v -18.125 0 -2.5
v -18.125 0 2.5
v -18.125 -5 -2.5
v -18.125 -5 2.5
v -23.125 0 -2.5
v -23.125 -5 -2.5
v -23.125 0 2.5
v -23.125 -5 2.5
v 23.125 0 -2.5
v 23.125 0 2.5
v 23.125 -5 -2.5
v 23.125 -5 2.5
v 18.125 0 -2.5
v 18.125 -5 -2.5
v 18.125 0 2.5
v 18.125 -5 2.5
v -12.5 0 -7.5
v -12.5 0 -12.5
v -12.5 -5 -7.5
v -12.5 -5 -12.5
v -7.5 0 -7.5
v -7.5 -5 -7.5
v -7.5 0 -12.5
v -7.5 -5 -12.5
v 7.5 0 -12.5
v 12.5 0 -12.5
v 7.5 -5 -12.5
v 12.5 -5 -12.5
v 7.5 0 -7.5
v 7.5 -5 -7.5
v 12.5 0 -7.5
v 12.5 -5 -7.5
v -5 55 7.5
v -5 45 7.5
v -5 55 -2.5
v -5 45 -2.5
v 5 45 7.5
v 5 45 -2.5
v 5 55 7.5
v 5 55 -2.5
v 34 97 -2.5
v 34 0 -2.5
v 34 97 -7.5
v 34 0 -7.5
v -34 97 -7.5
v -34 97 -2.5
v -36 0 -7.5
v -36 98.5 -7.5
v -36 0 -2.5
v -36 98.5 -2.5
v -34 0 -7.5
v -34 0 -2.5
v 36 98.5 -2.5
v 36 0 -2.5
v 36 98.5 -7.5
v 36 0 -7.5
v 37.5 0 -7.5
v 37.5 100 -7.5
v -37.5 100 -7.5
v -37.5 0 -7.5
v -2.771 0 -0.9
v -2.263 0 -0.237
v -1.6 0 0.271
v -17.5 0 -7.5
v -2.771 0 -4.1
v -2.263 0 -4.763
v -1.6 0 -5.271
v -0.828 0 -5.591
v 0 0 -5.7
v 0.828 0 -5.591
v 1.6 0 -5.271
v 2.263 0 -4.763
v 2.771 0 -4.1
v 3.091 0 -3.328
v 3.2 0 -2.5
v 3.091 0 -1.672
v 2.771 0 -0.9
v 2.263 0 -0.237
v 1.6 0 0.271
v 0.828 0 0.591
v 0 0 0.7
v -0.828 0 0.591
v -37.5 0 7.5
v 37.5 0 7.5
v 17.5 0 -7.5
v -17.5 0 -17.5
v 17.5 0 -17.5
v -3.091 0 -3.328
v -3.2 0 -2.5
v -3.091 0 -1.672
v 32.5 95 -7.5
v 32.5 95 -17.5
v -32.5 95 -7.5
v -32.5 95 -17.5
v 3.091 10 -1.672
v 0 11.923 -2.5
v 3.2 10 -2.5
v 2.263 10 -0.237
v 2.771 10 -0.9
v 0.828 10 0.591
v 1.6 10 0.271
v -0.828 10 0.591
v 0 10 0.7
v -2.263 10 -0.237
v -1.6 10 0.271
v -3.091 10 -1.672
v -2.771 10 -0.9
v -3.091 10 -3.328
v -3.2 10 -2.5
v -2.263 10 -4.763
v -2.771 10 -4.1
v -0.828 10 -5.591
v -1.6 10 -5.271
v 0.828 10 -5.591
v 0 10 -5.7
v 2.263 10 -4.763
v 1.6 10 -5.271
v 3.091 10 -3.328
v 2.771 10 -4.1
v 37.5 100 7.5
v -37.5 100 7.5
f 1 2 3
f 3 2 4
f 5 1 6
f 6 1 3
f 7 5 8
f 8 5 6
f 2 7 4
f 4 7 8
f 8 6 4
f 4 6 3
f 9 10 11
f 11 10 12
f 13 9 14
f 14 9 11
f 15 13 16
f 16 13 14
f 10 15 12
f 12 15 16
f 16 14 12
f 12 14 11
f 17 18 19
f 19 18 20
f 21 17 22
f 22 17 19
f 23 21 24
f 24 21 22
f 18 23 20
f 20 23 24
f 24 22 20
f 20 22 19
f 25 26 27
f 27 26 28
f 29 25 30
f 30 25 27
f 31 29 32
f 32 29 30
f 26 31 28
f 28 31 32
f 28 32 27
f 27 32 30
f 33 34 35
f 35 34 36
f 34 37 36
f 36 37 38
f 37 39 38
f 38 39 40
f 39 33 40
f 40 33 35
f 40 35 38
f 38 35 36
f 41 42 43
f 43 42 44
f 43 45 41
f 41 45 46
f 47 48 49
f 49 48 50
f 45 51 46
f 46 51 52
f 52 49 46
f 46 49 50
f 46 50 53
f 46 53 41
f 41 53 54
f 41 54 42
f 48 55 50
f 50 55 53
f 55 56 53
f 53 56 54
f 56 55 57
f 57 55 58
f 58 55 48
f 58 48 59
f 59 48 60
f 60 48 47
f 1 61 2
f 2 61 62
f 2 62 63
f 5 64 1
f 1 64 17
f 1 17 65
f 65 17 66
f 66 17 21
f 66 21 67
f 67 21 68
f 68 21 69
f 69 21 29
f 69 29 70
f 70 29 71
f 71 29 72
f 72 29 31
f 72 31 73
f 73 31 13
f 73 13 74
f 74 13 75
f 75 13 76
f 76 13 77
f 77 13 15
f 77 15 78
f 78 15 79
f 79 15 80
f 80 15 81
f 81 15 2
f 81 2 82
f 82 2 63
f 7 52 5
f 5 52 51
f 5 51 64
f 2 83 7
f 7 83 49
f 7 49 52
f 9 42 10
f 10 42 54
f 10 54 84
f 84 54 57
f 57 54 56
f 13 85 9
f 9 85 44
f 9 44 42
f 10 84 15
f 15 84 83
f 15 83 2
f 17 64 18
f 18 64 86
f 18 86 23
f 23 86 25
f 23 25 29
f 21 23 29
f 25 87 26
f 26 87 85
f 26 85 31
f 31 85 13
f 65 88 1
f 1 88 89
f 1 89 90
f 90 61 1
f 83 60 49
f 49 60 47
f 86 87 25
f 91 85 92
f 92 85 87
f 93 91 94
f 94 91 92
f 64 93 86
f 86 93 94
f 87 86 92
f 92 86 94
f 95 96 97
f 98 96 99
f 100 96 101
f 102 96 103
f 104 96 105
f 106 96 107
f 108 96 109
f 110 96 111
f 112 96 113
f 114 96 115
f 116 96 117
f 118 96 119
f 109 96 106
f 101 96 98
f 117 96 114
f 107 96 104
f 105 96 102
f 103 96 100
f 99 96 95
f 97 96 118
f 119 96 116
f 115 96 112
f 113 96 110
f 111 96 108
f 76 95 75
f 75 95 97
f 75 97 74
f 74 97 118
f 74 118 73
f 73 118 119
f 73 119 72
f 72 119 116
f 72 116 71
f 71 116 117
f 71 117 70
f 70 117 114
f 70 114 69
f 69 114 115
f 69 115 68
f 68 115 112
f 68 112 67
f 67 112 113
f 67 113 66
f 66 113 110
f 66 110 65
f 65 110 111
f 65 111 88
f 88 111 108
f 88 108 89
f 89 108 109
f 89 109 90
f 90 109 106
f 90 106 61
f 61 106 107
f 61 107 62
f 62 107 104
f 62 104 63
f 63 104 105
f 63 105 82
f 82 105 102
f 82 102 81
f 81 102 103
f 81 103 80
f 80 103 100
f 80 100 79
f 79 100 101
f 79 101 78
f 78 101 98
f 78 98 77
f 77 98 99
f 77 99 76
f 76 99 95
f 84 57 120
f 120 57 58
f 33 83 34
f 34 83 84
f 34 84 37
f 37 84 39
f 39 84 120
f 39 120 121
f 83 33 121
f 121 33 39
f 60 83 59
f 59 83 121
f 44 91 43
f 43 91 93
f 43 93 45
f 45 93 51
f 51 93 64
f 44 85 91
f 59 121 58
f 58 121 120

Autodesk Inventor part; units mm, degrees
ref_plane "YZ Plane" through (0, 0, 0) normal (1, 0, 0) x (0, 1, 0)
ref_plane "XZ Plane" through (0, 0, 0) normal (0, 1, 0) x (-1, 0, 0)
ref_plane "XY Plane" through (0, 0, 0) normal (0, 0, 1) x (1, 0, 0)
sketch "Sketch5" plane through (0, 0, 0) normal (0, 1, 0) x (-1, 0, 0)
  line L0 (-37.5, -7.5) -> (37.5, -7.5)
  line L1 (37.5, -7.5) -> (37.5, 7.5)
  line L2 (37.5, 7.5) -> (-37.5, 7.5)
  line L3 (-37.5, 7.5) -> (-37.5, -7.5)
  line L4 (-37.5, -7.5) -> (37.5, 7.5) construction
  line L5 (37.5, -7.5) -> (-37.5, 7.5) construction
  point P0 (0, 0)
  dimension "d6" = 75
  dimension "d7" = 15
extrude "Extrusion2" add sketch "Sketch5" along normal blind 100
sketch "Sketch36" plane through (0, 0, 0) normal (0, -1, 0) x (1, 0, 0)
  line L0 (-37.5, 7.5) -> (37.5, 7.5) projected
  line L1 (0, 7.5) -> (0, -2.5)
  point P0 (0, 0)
  dimension "d82" = 10
hole "Hole1" at (0, 0, -2.5) direction (0, 1, 0) diameter 6.4 depth 10 tip angle 118
sketch "Sketch37" plane through (37.5, 0, -7.5) normal (0, 0, -1) x (-1, 0, 0)
  line L0 (37.5, 0) -> (55, 0)
  line L1 (75, 0) -> (0, 0) projected
  line L2 (70, 0) -> (70, 95)
  line L3 (0, 100) -> (75, 100) projected
  line L4 (70, 0) -> (165, 0) construction
  line L5 (70, 95) -> (5, 95)
  line L6 (0, 0) -> (0, 100) projected
  line L7 (5, 95) -> (5, 0)
  line L8 (5, 0) -> (0, 0)
  line L9 (0, 100) -> (75, 100)
  line L10 (75, 100) -> (75, 0)
  line L11 (55, 0) -> (70, 95)
  line L12 (5, 95) -> (70, 95)
  line L13 (37.5, 0) -> (20, 0)
  line L14 (20, 0) -> (5, 95)
  dimension "d90" = 17.5
  dimension "d91" = 95
  dimension "d92" = 90
  dimension "d93" = 65
  dimension "d94" = 17.5
extrude "Extrusion11" add sketch "Sketch37" along normal blind 10 contours L1 L14 L5 L11 L0
sketch "Sketch38" plane through (37.5, 100, -7.5) normal (0, 0, -1) x (-1, 0, 0)
  line L0 (75, -100) -> (0, -100) projected
  line L1 (1.5, -100) -> (3.5, -100)
  line L2 (3.5, -100) -> (3.5, -1.5)
  line L3 (3.5, -1.5) -> (1.5, -1.5)
  line L4 (1.5, -1.5) -> (1.5, -100)
  line L5 (1.5, -1.5) -> (73.5, -1.5)
  line L6 (73.5, -1.5) -> (73.5, -3)
  line L7 (73.5, -3) -> (1.5, -3)
  line L8 (1.5, -3) -> (1.5, -1.5)
  line L9 (55, -100) -> (75, -100) projected
  line L10 (73.5, -1.5) -> (71.5, -1.5)
  line L11 (71.5, -1.5) -> (71.5, -100)
  line L12 (71.5, -100) -> (73.5, -100)
  line L13 (73.5, -100) -> (73.5, -1.5)
  point P0 (37.5, -100)
  dimension "d97" = 2
  dimension "d98" = 98.5
  dimension "d99" = 72
  dimension "d100" = 2
extrude "Extrusion12" cut sketch "Sketch38" against normal blind 5 contours L0 L11 L7 L13 | L7 L11 L5 L6 | L7 L2 L5 L11 | L0 L4 L7 L2 | L7 L4 L3 L2
sketch "Sketch39" plane through (-37.5, 0, 7.5) normal (0, 0, 1) x (1, 0, 0)
  line L0 (42.5, 55) -> (32.5, 55)
  line L1 (32.5, 55) -> (32.5, 45)
  line L2 (32.5, 45) -> (42.5, 45)
  line L3 (42.5, 45) -> (42.5, 55)
  line L4 (42.5, 55) -> (32.5, 45) construction
  line L5 (32.5, 55) -> (42.5, 45) construction
  point P0 (37.5, 0)
  point P1 (37.5, 50)
  dimension "d103" = 10
  dimension "d104" = 10
extrude "Extrusion13" cut sketch "Sketch39" against normal blind 10
sketch "Sketch43" plane through (0, 0, 0) normal (0, -1, 0) x (1, 0, 0)
  line L0 (17.5, -7.5) -> (17.5, -17.5) projected
  line L1 (17.5, -17.5) -> (12.5, -17.5)
  line L2 (12.5, -17.5) -> (12.5, -12.5)
  line L3 (12.5, -12.5) -> (17.5, -12.5)
  line L4 (17.5, -12.5) -> (17.5, -17.5)
  line L5 (12.5, -12.5) -> (7.5, -12.5)
  line L6 (7.5, -12.5) -> (7.5, -7.5)
  line L7 (7.5, -7.5) -> (12.5, -7.5)
  line L8 (12.5, -7.5) -> (12.5, -12.5)
  point P0 (0, 0)
  dimension "d122" = 5
  dimension "d123" = 5
  dimension "d124" = 5
  dimension "d125" = 5
extrude "Extrusion16" add sketch "Sketch43" along normal blind 5 contours L5 L6 L7 L8
sketch "Sketch45" plane through (0, 0, 0) normal (0, -1, 0) x (1, 0, 0)
  line L0 (-17.5, -7.5) -> (-17.5, -17.5) projected
  line L1 (-17.5, -17.5) -> (-12.5, -17.5)
  line L2 (-12.5, -17.5) -> (-12.5, -12.5)
  line L3 (-12.5, -12.5) -> (-17.5, -12.5)
  line L4 (-17.5, -12.5) -> (-17.5, -17.5)
  line L5 (-12.5, -12.5) -> (-7.5, -12.5)
  line L6 (-7.5, -12.5) -> (-7.5, -7.5)
  line L7 (-7.5, -7.5) -> (-12.5, -7.5)
  line L8 (-12.5, -7.5) -> (-12.5, -12.5)
  point P0 (0, 0)
  dimension "d128" = 5
  dimension "d129" = 5
  dimension "d130" = 5
  dimension "d131" = 5
extrude "Extrusion17" add sketch "Sketch45" along normal blind 5 contours L8 L7 L6 L5
sketch "Sketch48" plane through (0, 0, 0) normal (0, -1, 0) x (1, 0, 0)
  line L0 (-27.5, 7.5) -> (27.5, 7.5)
  line L1 (27.5, 7.5) -> (27.5, -7.5)
  line L2 (27.5, -7.5) -> (-27.5, -7.5)
  line L3 (-27.5, -7.5) -> (-27.5, 7.5)
  line L4 (-27.5, 7.5) -> (27.5, -7.5) construction
  line L5 (27.5, 7.5) -> (-27.5, -7.5) construction
  line L6 (0, -7.5) -> (27.5, -7.5)
  line L7 (27.5, -7.5) -> (27.5, 7.5)
  line L8 (27.5, 7.5) -> (0, 7.5)
  line L9 (0, 7.5) -> (0, -7.5)
  line L10 (13.75, -7.5) -> (27.5, -7.5)
  line L11 (27.5, -7.5) -> (27.5, 7.5)
  line L12 (27.5, 7.5) -> (13.75, 7.5)
  line L13 (13.75, 7.5) -> (13.75, -7.5)
  line L14 (20.625, -7.5) -> (27.5, -7.5)
  line L15 (27.5, -7.5) -> (27.5, 7.5)
  line L16 (27.5, 7.5) -> (20.625, 7.5)
  line L17 (20.625, 7.5) -> (20.625, -7.5)
  line L18 (18.125, 2.5) -> (23.125, 2.5)
  line L19 (23.125, 2.5) -> (23.125, -2.5)
  line L20 (23.125, -2.5) -> (18.125, -2.5)
  line L21 (18.125, -2.5) -> (18.125, 2.5)
  line L22 (18.125, 2.5) -> (23.125, -2.5) construction
  line L23 (23.125, 2.5) -> (18.125, -2.5) construction
  point P0 (0, 0)
  point P1 (20.625, 0)
  dimension "d145" = 55
  dimension "d146" = 15
  dimension "d147" = 5
  dimension "d148" = 5
extrude "Extrusion20" add sketch "Sketch48" along normal blind 5 contours L18 L19 L20 L17 | L17 L20 L21 L18
sketch "Sketch49" plane through (0, 0, 0) normal (0, -1, 0) x (1, 0, 0)
  line L0 (-27.5, 7.5) -> (27.5, 7.5)
  line L1 (27.5, 7.5) -> (27.5, -7.5)
  line L2 (27.5, -7.5) -> (-27.5, -7.5)
  line L3 (-27.5, -7.5) -> (-27.5, 7.5)
  line L4 (-27.5, 7.5) -> (27.5, -7.5) construction
  line L5 (27.5, 7.5) -> (-27.5, -7.5) construction
  line L6 (0, -7.5) -> (-27.5, -7.5)
  line L7 (-27.5, -7.5) -> (-27.5, 7.5)
  line L8 (-27.5, 7.5) -> (0, 7.5)
  line L9 (0, 7.5) -> (0, -7.5)
  line L10 (0, -7.5) -> (-27.5, -7.5)
  line L11 (-27.5, -7.5) -> (-27.5, 7.5)
  line L12 (-27.5, 7.5) -> (0, 7.5)
  line L13 (0, 7.5) -> (0, -7.5)
  line L14 (-13.75, -7.5) -> (-27.5, -7.5)
  line L15 (-27.5, -7.5) -> (-27.5, 7.5)
  line L16 (-27.5, 7.5) -> (-13.75, 7.5)
  line L17 (-13.75, 7.5) -> (-13.75, -7.5)
  line L18 (-20.625, -7.5) -> (-27.5, -7.5)
  line L19 (-27.5, -7.5) -> (-27.5, 7.5)
  line L20 (-27.5, 7.5) -> (-20.625, 7.5)
  line L21 (-20.625, 7.5) -> (-20.625, -7.5)
  line L22 (-23.125, 2.5) -> (-18.125, 2.5)
  line L23 (-18.125, 2.5) -> (-18.125, -2.5)
  line L24 (-18.125, -2.5) -> (-23.125, -2.5)
  line L25 (-23.125, -2.5) -> (-23.125, 2.5)
  line L26 (-23.125, 2.5) -> (-18.125, -2.5) construction
  line L27 (-18.125, 2.5) -> (-23.125, -2.5) construction
  point P0 (0, 0)
  point P1 (-20.625, 0)
  dimension "d151" = 55
  dimension "d152" = 15
  dimension "d153" = 5
  dimension "d154" = 5
extrude "Extrusion21" add sketch "Sketch49" along normal blind 5 contours L22 L23 L24 L21 | L21 L24 L25 L22
properties part number "tb3_start"
